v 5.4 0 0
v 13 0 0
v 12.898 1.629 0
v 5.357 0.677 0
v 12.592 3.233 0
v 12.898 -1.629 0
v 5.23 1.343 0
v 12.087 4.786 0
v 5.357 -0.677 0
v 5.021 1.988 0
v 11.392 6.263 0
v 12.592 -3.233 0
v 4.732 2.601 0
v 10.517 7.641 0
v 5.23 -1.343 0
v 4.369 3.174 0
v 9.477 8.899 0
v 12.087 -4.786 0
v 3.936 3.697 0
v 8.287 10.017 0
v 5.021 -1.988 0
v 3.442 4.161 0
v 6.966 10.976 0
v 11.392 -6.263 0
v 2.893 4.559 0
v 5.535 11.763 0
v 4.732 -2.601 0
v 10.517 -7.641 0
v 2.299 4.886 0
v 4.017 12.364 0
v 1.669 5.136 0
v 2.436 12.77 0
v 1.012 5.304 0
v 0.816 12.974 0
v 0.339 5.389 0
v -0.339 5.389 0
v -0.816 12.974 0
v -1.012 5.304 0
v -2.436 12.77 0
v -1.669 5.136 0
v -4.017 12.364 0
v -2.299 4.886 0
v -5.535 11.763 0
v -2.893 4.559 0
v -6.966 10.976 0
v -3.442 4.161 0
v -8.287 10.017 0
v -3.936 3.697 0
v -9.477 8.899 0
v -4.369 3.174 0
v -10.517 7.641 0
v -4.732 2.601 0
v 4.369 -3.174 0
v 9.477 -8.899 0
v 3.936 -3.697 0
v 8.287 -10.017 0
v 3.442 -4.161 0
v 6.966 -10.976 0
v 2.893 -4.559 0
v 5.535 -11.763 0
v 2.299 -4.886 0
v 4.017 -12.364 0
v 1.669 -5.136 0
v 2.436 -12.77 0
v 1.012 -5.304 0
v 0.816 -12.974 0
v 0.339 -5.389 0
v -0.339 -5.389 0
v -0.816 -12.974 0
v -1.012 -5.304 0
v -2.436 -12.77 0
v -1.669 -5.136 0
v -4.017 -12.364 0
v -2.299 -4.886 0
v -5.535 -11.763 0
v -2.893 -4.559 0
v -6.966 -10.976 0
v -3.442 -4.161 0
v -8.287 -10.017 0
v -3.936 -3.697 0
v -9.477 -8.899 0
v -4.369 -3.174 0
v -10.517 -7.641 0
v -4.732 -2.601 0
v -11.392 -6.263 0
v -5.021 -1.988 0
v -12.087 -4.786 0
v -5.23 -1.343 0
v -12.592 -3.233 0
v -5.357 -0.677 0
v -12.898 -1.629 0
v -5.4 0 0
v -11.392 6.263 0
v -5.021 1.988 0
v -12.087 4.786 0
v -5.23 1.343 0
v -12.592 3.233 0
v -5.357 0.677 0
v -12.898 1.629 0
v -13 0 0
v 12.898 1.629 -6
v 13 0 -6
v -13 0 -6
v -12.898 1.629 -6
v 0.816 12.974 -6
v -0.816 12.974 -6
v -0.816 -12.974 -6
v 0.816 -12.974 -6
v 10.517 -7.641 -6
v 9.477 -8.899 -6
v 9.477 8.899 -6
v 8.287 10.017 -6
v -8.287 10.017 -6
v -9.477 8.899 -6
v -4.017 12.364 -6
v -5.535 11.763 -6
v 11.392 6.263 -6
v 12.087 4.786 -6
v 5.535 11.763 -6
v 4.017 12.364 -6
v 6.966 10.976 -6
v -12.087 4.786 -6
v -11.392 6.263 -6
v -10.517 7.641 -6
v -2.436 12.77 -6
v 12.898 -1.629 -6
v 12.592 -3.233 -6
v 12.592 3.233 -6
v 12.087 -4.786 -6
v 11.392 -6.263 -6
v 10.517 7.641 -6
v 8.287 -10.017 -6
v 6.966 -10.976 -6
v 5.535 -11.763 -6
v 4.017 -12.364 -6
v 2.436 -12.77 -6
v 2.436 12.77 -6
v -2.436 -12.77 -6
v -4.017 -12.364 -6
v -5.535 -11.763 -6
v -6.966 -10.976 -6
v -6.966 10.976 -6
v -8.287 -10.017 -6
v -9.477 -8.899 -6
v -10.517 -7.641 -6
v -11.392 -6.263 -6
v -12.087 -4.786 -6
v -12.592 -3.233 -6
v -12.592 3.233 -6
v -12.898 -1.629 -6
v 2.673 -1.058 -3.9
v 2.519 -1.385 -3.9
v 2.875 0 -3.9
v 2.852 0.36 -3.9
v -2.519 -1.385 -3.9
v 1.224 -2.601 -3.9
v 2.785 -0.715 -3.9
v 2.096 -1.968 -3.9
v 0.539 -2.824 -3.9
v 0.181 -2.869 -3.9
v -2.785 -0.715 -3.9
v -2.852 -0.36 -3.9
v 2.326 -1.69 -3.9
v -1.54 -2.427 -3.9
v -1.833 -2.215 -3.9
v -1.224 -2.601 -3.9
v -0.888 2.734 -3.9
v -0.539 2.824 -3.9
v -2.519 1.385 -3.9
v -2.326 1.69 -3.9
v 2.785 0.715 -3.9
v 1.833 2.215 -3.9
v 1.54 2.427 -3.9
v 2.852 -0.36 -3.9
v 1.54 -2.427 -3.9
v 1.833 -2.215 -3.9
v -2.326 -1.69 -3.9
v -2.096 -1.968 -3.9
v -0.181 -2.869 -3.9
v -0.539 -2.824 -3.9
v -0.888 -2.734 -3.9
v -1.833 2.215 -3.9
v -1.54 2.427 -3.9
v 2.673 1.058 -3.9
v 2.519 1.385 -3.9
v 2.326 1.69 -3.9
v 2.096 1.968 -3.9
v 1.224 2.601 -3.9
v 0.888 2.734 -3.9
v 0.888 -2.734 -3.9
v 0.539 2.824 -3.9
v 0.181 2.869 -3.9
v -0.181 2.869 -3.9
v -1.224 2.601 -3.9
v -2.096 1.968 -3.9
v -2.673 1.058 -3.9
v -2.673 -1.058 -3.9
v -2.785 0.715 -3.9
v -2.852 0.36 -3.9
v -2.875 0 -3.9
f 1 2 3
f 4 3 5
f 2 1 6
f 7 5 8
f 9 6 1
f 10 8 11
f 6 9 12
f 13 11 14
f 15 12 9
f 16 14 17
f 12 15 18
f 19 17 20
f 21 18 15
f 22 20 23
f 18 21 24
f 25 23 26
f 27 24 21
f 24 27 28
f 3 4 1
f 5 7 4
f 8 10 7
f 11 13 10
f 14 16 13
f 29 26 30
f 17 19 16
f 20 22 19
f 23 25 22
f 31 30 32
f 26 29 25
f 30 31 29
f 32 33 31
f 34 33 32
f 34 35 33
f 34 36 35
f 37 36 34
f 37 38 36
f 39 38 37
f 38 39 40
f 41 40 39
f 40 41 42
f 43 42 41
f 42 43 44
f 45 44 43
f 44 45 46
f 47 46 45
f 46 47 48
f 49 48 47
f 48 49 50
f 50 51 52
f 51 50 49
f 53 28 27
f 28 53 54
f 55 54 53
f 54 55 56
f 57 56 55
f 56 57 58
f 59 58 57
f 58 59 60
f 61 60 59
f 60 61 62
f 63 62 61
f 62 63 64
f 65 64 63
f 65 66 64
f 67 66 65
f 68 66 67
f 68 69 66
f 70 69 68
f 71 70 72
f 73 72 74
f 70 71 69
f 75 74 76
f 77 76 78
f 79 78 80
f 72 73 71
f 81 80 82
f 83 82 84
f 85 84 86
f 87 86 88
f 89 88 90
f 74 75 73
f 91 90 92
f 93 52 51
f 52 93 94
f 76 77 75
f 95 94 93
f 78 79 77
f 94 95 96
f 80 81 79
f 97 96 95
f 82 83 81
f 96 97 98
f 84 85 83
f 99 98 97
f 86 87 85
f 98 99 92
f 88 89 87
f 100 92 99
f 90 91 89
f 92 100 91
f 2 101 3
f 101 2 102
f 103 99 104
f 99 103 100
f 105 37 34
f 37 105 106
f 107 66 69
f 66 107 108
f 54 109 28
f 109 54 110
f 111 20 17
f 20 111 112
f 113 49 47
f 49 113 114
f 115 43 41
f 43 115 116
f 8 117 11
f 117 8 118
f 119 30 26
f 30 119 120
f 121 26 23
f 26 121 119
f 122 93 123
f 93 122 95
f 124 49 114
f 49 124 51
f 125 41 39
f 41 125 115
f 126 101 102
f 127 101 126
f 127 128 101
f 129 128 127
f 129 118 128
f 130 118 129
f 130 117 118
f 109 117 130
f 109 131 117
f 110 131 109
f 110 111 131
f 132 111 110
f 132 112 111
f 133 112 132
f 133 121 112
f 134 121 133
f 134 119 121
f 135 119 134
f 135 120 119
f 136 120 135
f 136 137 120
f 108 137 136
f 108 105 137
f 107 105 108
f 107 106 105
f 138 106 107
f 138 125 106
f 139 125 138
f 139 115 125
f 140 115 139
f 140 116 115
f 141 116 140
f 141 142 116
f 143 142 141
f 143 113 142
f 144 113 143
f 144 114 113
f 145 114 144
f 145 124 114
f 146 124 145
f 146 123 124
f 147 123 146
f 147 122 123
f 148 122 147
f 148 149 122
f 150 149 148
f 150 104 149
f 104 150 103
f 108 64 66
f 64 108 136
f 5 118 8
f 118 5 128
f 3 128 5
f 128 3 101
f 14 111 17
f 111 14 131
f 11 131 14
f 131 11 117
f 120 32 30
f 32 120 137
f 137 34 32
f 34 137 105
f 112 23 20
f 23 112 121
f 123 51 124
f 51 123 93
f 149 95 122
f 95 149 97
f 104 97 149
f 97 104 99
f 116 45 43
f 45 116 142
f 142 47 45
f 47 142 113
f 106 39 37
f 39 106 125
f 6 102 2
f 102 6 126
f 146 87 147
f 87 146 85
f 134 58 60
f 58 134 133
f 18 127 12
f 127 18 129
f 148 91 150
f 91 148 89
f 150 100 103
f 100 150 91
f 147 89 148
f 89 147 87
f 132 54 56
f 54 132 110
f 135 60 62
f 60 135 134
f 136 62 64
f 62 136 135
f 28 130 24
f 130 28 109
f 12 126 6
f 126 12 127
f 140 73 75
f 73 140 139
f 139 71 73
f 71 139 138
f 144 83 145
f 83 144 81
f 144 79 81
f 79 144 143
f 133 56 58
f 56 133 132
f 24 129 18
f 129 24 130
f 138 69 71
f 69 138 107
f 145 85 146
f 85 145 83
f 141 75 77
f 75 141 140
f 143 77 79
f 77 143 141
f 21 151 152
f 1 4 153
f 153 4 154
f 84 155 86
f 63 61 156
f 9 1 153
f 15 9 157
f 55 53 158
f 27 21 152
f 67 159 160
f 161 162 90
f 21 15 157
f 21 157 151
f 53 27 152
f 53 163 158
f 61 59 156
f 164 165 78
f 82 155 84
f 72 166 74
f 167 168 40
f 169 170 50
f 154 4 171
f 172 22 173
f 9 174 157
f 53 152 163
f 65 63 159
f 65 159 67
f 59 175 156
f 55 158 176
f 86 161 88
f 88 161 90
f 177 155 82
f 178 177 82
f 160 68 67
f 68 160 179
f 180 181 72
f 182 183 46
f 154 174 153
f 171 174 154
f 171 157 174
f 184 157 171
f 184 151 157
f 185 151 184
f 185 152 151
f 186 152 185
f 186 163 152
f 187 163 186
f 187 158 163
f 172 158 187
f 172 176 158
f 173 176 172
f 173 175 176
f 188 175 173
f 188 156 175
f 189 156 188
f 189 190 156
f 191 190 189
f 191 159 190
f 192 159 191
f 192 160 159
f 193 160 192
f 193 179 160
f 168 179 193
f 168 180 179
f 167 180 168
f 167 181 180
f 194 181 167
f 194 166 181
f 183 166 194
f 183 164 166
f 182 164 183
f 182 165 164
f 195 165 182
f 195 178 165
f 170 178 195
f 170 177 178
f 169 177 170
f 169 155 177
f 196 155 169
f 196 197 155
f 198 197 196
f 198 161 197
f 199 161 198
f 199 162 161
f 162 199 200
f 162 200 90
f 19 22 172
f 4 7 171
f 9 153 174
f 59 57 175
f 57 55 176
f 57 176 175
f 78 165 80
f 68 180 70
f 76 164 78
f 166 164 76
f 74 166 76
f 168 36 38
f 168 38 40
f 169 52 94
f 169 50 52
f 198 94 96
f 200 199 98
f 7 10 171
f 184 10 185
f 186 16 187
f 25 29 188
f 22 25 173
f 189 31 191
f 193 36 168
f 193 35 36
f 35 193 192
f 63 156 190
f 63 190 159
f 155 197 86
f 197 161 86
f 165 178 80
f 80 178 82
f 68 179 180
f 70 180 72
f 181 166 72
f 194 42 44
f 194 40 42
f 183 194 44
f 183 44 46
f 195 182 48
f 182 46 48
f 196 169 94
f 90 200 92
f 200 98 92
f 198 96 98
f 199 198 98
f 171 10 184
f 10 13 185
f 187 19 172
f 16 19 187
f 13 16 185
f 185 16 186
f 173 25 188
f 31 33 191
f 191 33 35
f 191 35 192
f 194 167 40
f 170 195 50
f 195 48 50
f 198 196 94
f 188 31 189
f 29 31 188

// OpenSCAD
$fn = 50;


difference() {
	union() {
		translate(v = [0, 0, -3.0000000000]) {
			cylinder(h = 3, r = 10.0000000000);
		}
		translate(v = [0, 0, -6.0000000000]) {
			cylinder(h = 6, r = 13.0000000000);
		}
	}
	union() {
		translate(v = [0, 0, 0]) {
			rotate(a = [0, 0, 0]) {
				difference() {
					union() {
						#translate(v = [0, 0, -3.0000000000]) {
							cylinder(h = 3, r = 2.6000000000);
						}
						#translate(v = [0, 0, -3.9000000000]) {
							cylinder(h = 3.9000000000, r1 = 2.8750000000, r2 = 5.4000000000);
						}
						#translate(v = [0, 0, -3.0000000000]) {
							cylinder(h = 3, r = 2.8750000000);
						}
						#translate(v = [0, 0, -3.0000000000]) {
							cylinder(h = 3, r = 2.6000000000);
						}
					}
					union();
				}
			}
		}
	}
}
